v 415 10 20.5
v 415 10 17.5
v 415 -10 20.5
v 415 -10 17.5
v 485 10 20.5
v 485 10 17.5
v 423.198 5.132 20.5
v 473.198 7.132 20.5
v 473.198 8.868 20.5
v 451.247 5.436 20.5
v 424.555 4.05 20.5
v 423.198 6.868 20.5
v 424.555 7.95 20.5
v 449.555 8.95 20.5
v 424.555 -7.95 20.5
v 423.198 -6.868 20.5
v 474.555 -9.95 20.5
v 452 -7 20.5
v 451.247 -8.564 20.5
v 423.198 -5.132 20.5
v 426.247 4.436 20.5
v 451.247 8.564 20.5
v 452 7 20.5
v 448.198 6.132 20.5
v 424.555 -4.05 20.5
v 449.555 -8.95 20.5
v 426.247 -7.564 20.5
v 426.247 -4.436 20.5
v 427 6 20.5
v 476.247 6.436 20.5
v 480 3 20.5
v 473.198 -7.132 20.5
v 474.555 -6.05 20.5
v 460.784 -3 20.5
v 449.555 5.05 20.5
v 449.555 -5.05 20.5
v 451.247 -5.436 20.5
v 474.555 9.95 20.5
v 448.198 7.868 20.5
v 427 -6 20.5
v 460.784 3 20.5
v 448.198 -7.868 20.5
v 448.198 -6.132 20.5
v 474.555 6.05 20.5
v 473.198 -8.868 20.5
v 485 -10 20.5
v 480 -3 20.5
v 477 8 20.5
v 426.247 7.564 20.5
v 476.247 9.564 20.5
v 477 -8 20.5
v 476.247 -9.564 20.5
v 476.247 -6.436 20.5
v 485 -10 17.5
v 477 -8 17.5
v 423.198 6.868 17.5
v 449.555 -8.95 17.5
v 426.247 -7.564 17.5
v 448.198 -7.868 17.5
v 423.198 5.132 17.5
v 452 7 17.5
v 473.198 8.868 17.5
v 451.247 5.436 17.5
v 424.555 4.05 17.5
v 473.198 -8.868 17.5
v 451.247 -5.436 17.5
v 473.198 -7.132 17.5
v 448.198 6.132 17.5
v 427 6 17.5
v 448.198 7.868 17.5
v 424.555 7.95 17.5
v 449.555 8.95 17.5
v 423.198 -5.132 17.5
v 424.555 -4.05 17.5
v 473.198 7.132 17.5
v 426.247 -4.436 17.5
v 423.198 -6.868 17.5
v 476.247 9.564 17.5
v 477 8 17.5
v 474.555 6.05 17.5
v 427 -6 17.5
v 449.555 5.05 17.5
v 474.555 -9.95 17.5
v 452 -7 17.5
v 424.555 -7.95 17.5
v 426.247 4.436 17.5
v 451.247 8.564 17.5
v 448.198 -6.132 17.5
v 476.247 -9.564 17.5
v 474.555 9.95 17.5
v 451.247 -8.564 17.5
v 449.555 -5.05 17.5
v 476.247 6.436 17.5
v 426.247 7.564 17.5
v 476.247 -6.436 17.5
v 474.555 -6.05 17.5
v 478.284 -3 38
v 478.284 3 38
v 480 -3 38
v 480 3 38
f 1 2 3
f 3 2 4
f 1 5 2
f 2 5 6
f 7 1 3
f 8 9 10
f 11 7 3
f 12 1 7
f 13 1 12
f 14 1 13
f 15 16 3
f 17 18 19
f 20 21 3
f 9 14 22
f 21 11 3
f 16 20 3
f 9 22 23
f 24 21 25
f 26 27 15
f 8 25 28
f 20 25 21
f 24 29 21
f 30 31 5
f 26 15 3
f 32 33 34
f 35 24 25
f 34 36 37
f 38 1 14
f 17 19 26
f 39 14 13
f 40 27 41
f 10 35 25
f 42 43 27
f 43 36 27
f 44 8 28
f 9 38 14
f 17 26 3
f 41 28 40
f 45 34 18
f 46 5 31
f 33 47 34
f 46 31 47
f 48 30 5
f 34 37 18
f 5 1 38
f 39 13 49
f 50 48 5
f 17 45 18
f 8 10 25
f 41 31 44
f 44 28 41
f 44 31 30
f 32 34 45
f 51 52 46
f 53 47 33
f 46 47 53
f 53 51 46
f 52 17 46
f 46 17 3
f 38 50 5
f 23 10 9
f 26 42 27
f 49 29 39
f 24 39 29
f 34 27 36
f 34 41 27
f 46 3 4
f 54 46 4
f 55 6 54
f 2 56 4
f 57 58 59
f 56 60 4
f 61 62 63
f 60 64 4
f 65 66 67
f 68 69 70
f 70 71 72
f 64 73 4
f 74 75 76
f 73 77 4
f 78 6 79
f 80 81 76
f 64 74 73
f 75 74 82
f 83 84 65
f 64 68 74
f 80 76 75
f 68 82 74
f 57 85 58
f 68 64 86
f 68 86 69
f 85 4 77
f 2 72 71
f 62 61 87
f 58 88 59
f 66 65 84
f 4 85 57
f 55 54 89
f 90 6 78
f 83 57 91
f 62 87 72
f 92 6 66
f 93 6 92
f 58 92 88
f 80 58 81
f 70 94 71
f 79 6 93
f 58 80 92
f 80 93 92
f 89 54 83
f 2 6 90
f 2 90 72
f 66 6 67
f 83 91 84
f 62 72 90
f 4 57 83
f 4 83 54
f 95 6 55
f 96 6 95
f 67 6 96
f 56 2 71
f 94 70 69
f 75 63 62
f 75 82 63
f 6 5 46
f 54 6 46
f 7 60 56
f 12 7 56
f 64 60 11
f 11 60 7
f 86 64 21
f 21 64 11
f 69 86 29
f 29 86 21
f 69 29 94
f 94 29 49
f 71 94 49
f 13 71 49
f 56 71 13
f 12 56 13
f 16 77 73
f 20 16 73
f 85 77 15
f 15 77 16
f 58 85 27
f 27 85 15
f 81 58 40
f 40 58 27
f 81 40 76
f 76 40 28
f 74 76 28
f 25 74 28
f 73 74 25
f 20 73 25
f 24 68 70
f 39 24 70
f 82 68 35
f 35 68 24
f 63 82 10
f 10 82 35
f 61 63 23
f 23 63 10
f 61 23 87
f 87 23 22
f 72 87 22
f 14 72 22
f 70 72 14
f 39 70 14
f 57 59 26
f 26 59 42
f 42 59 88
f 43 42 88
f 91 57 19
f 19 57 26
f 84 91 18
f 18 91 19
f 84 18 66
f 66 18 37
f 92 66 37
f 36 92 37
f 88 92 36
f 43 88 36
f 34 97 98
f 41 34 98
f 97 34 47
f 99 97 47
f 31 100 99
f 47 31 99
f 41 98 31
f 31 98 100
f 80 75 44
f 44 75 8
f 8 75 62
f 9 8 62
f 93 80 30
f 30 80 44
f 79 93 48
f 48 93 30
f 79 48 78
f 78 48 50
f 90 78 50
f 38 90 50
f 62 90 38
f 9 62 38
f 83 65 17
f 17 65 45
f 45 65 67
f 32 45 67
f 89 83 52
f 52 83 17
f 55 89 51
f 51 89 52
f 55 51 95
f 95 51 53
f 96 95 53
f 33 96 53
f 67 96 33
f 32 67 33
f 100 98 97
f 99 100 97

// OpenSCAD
// file: tail.scad
module tail_up_front(){
  translate([0,0,2]){
    difference(){
      union(){
        scale(0.8) translate([500,-65.2,-13]){
          difference(){
            translate([0,-22,0]) scale([0.6,0.4,0.6])
              linear_extrude(file = "tail/front.dxf",height = 200, convexity = 10);
            union(){
              translate([110,60-5,-1])
              cube([36,70+5,20+15]);
              translate([110,60-5,101])
              cube([36,70+5,20]);
              translate([110,60-5,30+15])
              cube([16,70+5,60-15]);
            }
          }
        }
      }
      translate([400,-100,-7.5-300])cube(300);
    }
    translate([0,0,3])tail_upper_socket();
  }
}

module tail_front(){
difference(){
  union(){
    scale(0.8) translate([500,-65.2,-13]){
      difference(){
        translate([0,-22,0]) scale([0.6,0.4,0.6])
          linear_extrude(file = "tail/front.dxf",height = 200, convexity = 10);
        union(){
          translate([110,60-5,-1])
          cube([36,70+5,20+15]);
          translate([110,60-5,101])
          cube([36,70+5,20]);
          translate([110,60-5,30+15])
          cube([16,70+5,60-15]);
        }
      }
    }
  }
  translate([400,-100,-7.501])cube(300);
}

}

module tail_back(){
  scale(0.8) translate([500,-65.2,-13]) {
  difference(){
  scale([0.6,0.3,0.6])
  scale([0.6,1,1])
  translate([120,0,0])
  linear_extrude(file = "tail/back.dxf",height = 200, convexity = 10);
  union(){
    translate([110,60,18+15])
    cube([22,70,120-36-15]);
    translate([110,0,0]) rotate([0,45+14,0]) cube([100,297,300]);
    translate([110,0,-1-5+3]) cube([60,297,11]);
  }
  }
  }

}

module tail_rod(){
      translate([110, 0, -12])rotate([0,90,0])cylinder(r=3.7,h=370);
}

module tail_unstranlated(){
difference(){
union(){
  tail_front();
  tail_back();
}
    translate([120,65,-1])
cylinder(r=2,h=200);

}
}

module tail(){
  difference(){
    tail_unstranlated();
    tail_rod();
  }
}

module tail_socket(){
  difference(){
    translate([450,0,-10]) cube([70,20,5],center=true);
    union(){
      tail_rod();
      translate([450,-7,-100]) cylinder(r=2,h=400);
      translate([475,-8,-100]) cylinder(r=2,h=400);
      translate([425,-6,-100]) cylinder(r=2,h=400);
      translate([450,7,-100]) cylinder(r=2,h=400);
      translate([475,8,-100]) cylinder(r=2,h=400);
      translate([425,6,-100]) cylinder(r=2,h=400);
    }
  }
}

module tail_upper_socket(){
  difference(){
    translate([450,0,-10]) cube([70,20,3],center=true);
    union(){
      translate([450,-7,-100]) cylinder(r=2,h=400);
     translate([475,-8,-100]) cylinder(r=2,h=400);
     translate([425,-6,-100]) cylinder(r=2,h=400);
     translate([450,7,-100]) cylinder(r=2,h=400);
     translate([475,8,-100]) cylinder(r=2,h=400);
     translate([425,6,-100]) cylinder(r=2,h=400);
    }
  }
}

module tail_socket_bottom(){
  back_wheel();
  difference(){
    translate([450,0,-19]) cube([70,20,3],center=true);
    union(){
      tail_rod();
      translate([450,-7,-100]) cylinder(r=2,h=400);
     translate([475,-8,-100]) cylinder(r=2,h=400);
     translate([425,-6,-100]) cylinder(r=2,h=400);
     translate([450,7,-100]) cylinder(r=2,h=400);
     translate([475,8,-100]) cylinder(r=2,h=400);
     translate([425,6,-100]) cylinder(r=2,h=400);
    }
  }
}

module back_wheel(){
difference(){
 translate([470,0,-28]) cube([20,6,20],center=true);
 translate([470-10,-6+12,-28-20]) rotate([0,45,0]) cube([40,40,40],center=true);
}
}

module elevator_fixed(){
difference(){
  union(){
    translate([500*0.8,48/0.7,-66]) rotate([90,0,0])
    scale([0.48,0.24,0.7]) linear_extrude(file = "tail/front.dxf",height = 200, convexity = 10);
  }
  union(){
    tail_rod();
      translate([450,-7,-100]) cylinder(r=2,h=400);
     translate([475,-8,-100]) cylinder(r=2,h=400);
     translate([425,-6,-100]) cylinder(r=2,h=400);
     translate([450,7,-100]) cylinder(r=2,h=400);
     translate([475,8,-100]) cylinder(r=2,h=400);
     translate([425,6,-100]) cylinder(r=2,h=400);
    translate([150,-200,-17-5/2]) cube([1000,1000,5]);
    translate([490,-60,-100]) cube([50,117,300]);
    translate([497,200,-12.5]) rotate([90,0,0]) cylinder(r=1,h=400);
  }
}
}

module elevator(){
  difference(){
    difference(){
      translate([500*0.8-3+35,48/0.7,-66]) rotate([90,0,0]) scale([0.3,0.24,0.7])
      linear_extrude(file = "tail/back.dxf",height = 200, convexity = 10);
      union(){
        translate([150,-200,-17-5/2]) cube([1000,1000,5]);
        translate([490,-90,-100]) cube([16,31,300]);
        translate([490,-60+117+1-2,-100]) cube([16,297,300]);
      }
  }
    translate([497,200,-12.5]) rotate([90,0,0]) cylinder(r=1,h=400);
  }
  
}

module tail_full(){
  tail();
  tail_up_front();
  tail_rod();
  tail_socket();
  tail_socket_bottom();
  elevator_fixed();
  elevator();
}


tail_full();
// main file
use <tail.scad>;



rotate([180,0,0])

      tail_socket_bottom();
